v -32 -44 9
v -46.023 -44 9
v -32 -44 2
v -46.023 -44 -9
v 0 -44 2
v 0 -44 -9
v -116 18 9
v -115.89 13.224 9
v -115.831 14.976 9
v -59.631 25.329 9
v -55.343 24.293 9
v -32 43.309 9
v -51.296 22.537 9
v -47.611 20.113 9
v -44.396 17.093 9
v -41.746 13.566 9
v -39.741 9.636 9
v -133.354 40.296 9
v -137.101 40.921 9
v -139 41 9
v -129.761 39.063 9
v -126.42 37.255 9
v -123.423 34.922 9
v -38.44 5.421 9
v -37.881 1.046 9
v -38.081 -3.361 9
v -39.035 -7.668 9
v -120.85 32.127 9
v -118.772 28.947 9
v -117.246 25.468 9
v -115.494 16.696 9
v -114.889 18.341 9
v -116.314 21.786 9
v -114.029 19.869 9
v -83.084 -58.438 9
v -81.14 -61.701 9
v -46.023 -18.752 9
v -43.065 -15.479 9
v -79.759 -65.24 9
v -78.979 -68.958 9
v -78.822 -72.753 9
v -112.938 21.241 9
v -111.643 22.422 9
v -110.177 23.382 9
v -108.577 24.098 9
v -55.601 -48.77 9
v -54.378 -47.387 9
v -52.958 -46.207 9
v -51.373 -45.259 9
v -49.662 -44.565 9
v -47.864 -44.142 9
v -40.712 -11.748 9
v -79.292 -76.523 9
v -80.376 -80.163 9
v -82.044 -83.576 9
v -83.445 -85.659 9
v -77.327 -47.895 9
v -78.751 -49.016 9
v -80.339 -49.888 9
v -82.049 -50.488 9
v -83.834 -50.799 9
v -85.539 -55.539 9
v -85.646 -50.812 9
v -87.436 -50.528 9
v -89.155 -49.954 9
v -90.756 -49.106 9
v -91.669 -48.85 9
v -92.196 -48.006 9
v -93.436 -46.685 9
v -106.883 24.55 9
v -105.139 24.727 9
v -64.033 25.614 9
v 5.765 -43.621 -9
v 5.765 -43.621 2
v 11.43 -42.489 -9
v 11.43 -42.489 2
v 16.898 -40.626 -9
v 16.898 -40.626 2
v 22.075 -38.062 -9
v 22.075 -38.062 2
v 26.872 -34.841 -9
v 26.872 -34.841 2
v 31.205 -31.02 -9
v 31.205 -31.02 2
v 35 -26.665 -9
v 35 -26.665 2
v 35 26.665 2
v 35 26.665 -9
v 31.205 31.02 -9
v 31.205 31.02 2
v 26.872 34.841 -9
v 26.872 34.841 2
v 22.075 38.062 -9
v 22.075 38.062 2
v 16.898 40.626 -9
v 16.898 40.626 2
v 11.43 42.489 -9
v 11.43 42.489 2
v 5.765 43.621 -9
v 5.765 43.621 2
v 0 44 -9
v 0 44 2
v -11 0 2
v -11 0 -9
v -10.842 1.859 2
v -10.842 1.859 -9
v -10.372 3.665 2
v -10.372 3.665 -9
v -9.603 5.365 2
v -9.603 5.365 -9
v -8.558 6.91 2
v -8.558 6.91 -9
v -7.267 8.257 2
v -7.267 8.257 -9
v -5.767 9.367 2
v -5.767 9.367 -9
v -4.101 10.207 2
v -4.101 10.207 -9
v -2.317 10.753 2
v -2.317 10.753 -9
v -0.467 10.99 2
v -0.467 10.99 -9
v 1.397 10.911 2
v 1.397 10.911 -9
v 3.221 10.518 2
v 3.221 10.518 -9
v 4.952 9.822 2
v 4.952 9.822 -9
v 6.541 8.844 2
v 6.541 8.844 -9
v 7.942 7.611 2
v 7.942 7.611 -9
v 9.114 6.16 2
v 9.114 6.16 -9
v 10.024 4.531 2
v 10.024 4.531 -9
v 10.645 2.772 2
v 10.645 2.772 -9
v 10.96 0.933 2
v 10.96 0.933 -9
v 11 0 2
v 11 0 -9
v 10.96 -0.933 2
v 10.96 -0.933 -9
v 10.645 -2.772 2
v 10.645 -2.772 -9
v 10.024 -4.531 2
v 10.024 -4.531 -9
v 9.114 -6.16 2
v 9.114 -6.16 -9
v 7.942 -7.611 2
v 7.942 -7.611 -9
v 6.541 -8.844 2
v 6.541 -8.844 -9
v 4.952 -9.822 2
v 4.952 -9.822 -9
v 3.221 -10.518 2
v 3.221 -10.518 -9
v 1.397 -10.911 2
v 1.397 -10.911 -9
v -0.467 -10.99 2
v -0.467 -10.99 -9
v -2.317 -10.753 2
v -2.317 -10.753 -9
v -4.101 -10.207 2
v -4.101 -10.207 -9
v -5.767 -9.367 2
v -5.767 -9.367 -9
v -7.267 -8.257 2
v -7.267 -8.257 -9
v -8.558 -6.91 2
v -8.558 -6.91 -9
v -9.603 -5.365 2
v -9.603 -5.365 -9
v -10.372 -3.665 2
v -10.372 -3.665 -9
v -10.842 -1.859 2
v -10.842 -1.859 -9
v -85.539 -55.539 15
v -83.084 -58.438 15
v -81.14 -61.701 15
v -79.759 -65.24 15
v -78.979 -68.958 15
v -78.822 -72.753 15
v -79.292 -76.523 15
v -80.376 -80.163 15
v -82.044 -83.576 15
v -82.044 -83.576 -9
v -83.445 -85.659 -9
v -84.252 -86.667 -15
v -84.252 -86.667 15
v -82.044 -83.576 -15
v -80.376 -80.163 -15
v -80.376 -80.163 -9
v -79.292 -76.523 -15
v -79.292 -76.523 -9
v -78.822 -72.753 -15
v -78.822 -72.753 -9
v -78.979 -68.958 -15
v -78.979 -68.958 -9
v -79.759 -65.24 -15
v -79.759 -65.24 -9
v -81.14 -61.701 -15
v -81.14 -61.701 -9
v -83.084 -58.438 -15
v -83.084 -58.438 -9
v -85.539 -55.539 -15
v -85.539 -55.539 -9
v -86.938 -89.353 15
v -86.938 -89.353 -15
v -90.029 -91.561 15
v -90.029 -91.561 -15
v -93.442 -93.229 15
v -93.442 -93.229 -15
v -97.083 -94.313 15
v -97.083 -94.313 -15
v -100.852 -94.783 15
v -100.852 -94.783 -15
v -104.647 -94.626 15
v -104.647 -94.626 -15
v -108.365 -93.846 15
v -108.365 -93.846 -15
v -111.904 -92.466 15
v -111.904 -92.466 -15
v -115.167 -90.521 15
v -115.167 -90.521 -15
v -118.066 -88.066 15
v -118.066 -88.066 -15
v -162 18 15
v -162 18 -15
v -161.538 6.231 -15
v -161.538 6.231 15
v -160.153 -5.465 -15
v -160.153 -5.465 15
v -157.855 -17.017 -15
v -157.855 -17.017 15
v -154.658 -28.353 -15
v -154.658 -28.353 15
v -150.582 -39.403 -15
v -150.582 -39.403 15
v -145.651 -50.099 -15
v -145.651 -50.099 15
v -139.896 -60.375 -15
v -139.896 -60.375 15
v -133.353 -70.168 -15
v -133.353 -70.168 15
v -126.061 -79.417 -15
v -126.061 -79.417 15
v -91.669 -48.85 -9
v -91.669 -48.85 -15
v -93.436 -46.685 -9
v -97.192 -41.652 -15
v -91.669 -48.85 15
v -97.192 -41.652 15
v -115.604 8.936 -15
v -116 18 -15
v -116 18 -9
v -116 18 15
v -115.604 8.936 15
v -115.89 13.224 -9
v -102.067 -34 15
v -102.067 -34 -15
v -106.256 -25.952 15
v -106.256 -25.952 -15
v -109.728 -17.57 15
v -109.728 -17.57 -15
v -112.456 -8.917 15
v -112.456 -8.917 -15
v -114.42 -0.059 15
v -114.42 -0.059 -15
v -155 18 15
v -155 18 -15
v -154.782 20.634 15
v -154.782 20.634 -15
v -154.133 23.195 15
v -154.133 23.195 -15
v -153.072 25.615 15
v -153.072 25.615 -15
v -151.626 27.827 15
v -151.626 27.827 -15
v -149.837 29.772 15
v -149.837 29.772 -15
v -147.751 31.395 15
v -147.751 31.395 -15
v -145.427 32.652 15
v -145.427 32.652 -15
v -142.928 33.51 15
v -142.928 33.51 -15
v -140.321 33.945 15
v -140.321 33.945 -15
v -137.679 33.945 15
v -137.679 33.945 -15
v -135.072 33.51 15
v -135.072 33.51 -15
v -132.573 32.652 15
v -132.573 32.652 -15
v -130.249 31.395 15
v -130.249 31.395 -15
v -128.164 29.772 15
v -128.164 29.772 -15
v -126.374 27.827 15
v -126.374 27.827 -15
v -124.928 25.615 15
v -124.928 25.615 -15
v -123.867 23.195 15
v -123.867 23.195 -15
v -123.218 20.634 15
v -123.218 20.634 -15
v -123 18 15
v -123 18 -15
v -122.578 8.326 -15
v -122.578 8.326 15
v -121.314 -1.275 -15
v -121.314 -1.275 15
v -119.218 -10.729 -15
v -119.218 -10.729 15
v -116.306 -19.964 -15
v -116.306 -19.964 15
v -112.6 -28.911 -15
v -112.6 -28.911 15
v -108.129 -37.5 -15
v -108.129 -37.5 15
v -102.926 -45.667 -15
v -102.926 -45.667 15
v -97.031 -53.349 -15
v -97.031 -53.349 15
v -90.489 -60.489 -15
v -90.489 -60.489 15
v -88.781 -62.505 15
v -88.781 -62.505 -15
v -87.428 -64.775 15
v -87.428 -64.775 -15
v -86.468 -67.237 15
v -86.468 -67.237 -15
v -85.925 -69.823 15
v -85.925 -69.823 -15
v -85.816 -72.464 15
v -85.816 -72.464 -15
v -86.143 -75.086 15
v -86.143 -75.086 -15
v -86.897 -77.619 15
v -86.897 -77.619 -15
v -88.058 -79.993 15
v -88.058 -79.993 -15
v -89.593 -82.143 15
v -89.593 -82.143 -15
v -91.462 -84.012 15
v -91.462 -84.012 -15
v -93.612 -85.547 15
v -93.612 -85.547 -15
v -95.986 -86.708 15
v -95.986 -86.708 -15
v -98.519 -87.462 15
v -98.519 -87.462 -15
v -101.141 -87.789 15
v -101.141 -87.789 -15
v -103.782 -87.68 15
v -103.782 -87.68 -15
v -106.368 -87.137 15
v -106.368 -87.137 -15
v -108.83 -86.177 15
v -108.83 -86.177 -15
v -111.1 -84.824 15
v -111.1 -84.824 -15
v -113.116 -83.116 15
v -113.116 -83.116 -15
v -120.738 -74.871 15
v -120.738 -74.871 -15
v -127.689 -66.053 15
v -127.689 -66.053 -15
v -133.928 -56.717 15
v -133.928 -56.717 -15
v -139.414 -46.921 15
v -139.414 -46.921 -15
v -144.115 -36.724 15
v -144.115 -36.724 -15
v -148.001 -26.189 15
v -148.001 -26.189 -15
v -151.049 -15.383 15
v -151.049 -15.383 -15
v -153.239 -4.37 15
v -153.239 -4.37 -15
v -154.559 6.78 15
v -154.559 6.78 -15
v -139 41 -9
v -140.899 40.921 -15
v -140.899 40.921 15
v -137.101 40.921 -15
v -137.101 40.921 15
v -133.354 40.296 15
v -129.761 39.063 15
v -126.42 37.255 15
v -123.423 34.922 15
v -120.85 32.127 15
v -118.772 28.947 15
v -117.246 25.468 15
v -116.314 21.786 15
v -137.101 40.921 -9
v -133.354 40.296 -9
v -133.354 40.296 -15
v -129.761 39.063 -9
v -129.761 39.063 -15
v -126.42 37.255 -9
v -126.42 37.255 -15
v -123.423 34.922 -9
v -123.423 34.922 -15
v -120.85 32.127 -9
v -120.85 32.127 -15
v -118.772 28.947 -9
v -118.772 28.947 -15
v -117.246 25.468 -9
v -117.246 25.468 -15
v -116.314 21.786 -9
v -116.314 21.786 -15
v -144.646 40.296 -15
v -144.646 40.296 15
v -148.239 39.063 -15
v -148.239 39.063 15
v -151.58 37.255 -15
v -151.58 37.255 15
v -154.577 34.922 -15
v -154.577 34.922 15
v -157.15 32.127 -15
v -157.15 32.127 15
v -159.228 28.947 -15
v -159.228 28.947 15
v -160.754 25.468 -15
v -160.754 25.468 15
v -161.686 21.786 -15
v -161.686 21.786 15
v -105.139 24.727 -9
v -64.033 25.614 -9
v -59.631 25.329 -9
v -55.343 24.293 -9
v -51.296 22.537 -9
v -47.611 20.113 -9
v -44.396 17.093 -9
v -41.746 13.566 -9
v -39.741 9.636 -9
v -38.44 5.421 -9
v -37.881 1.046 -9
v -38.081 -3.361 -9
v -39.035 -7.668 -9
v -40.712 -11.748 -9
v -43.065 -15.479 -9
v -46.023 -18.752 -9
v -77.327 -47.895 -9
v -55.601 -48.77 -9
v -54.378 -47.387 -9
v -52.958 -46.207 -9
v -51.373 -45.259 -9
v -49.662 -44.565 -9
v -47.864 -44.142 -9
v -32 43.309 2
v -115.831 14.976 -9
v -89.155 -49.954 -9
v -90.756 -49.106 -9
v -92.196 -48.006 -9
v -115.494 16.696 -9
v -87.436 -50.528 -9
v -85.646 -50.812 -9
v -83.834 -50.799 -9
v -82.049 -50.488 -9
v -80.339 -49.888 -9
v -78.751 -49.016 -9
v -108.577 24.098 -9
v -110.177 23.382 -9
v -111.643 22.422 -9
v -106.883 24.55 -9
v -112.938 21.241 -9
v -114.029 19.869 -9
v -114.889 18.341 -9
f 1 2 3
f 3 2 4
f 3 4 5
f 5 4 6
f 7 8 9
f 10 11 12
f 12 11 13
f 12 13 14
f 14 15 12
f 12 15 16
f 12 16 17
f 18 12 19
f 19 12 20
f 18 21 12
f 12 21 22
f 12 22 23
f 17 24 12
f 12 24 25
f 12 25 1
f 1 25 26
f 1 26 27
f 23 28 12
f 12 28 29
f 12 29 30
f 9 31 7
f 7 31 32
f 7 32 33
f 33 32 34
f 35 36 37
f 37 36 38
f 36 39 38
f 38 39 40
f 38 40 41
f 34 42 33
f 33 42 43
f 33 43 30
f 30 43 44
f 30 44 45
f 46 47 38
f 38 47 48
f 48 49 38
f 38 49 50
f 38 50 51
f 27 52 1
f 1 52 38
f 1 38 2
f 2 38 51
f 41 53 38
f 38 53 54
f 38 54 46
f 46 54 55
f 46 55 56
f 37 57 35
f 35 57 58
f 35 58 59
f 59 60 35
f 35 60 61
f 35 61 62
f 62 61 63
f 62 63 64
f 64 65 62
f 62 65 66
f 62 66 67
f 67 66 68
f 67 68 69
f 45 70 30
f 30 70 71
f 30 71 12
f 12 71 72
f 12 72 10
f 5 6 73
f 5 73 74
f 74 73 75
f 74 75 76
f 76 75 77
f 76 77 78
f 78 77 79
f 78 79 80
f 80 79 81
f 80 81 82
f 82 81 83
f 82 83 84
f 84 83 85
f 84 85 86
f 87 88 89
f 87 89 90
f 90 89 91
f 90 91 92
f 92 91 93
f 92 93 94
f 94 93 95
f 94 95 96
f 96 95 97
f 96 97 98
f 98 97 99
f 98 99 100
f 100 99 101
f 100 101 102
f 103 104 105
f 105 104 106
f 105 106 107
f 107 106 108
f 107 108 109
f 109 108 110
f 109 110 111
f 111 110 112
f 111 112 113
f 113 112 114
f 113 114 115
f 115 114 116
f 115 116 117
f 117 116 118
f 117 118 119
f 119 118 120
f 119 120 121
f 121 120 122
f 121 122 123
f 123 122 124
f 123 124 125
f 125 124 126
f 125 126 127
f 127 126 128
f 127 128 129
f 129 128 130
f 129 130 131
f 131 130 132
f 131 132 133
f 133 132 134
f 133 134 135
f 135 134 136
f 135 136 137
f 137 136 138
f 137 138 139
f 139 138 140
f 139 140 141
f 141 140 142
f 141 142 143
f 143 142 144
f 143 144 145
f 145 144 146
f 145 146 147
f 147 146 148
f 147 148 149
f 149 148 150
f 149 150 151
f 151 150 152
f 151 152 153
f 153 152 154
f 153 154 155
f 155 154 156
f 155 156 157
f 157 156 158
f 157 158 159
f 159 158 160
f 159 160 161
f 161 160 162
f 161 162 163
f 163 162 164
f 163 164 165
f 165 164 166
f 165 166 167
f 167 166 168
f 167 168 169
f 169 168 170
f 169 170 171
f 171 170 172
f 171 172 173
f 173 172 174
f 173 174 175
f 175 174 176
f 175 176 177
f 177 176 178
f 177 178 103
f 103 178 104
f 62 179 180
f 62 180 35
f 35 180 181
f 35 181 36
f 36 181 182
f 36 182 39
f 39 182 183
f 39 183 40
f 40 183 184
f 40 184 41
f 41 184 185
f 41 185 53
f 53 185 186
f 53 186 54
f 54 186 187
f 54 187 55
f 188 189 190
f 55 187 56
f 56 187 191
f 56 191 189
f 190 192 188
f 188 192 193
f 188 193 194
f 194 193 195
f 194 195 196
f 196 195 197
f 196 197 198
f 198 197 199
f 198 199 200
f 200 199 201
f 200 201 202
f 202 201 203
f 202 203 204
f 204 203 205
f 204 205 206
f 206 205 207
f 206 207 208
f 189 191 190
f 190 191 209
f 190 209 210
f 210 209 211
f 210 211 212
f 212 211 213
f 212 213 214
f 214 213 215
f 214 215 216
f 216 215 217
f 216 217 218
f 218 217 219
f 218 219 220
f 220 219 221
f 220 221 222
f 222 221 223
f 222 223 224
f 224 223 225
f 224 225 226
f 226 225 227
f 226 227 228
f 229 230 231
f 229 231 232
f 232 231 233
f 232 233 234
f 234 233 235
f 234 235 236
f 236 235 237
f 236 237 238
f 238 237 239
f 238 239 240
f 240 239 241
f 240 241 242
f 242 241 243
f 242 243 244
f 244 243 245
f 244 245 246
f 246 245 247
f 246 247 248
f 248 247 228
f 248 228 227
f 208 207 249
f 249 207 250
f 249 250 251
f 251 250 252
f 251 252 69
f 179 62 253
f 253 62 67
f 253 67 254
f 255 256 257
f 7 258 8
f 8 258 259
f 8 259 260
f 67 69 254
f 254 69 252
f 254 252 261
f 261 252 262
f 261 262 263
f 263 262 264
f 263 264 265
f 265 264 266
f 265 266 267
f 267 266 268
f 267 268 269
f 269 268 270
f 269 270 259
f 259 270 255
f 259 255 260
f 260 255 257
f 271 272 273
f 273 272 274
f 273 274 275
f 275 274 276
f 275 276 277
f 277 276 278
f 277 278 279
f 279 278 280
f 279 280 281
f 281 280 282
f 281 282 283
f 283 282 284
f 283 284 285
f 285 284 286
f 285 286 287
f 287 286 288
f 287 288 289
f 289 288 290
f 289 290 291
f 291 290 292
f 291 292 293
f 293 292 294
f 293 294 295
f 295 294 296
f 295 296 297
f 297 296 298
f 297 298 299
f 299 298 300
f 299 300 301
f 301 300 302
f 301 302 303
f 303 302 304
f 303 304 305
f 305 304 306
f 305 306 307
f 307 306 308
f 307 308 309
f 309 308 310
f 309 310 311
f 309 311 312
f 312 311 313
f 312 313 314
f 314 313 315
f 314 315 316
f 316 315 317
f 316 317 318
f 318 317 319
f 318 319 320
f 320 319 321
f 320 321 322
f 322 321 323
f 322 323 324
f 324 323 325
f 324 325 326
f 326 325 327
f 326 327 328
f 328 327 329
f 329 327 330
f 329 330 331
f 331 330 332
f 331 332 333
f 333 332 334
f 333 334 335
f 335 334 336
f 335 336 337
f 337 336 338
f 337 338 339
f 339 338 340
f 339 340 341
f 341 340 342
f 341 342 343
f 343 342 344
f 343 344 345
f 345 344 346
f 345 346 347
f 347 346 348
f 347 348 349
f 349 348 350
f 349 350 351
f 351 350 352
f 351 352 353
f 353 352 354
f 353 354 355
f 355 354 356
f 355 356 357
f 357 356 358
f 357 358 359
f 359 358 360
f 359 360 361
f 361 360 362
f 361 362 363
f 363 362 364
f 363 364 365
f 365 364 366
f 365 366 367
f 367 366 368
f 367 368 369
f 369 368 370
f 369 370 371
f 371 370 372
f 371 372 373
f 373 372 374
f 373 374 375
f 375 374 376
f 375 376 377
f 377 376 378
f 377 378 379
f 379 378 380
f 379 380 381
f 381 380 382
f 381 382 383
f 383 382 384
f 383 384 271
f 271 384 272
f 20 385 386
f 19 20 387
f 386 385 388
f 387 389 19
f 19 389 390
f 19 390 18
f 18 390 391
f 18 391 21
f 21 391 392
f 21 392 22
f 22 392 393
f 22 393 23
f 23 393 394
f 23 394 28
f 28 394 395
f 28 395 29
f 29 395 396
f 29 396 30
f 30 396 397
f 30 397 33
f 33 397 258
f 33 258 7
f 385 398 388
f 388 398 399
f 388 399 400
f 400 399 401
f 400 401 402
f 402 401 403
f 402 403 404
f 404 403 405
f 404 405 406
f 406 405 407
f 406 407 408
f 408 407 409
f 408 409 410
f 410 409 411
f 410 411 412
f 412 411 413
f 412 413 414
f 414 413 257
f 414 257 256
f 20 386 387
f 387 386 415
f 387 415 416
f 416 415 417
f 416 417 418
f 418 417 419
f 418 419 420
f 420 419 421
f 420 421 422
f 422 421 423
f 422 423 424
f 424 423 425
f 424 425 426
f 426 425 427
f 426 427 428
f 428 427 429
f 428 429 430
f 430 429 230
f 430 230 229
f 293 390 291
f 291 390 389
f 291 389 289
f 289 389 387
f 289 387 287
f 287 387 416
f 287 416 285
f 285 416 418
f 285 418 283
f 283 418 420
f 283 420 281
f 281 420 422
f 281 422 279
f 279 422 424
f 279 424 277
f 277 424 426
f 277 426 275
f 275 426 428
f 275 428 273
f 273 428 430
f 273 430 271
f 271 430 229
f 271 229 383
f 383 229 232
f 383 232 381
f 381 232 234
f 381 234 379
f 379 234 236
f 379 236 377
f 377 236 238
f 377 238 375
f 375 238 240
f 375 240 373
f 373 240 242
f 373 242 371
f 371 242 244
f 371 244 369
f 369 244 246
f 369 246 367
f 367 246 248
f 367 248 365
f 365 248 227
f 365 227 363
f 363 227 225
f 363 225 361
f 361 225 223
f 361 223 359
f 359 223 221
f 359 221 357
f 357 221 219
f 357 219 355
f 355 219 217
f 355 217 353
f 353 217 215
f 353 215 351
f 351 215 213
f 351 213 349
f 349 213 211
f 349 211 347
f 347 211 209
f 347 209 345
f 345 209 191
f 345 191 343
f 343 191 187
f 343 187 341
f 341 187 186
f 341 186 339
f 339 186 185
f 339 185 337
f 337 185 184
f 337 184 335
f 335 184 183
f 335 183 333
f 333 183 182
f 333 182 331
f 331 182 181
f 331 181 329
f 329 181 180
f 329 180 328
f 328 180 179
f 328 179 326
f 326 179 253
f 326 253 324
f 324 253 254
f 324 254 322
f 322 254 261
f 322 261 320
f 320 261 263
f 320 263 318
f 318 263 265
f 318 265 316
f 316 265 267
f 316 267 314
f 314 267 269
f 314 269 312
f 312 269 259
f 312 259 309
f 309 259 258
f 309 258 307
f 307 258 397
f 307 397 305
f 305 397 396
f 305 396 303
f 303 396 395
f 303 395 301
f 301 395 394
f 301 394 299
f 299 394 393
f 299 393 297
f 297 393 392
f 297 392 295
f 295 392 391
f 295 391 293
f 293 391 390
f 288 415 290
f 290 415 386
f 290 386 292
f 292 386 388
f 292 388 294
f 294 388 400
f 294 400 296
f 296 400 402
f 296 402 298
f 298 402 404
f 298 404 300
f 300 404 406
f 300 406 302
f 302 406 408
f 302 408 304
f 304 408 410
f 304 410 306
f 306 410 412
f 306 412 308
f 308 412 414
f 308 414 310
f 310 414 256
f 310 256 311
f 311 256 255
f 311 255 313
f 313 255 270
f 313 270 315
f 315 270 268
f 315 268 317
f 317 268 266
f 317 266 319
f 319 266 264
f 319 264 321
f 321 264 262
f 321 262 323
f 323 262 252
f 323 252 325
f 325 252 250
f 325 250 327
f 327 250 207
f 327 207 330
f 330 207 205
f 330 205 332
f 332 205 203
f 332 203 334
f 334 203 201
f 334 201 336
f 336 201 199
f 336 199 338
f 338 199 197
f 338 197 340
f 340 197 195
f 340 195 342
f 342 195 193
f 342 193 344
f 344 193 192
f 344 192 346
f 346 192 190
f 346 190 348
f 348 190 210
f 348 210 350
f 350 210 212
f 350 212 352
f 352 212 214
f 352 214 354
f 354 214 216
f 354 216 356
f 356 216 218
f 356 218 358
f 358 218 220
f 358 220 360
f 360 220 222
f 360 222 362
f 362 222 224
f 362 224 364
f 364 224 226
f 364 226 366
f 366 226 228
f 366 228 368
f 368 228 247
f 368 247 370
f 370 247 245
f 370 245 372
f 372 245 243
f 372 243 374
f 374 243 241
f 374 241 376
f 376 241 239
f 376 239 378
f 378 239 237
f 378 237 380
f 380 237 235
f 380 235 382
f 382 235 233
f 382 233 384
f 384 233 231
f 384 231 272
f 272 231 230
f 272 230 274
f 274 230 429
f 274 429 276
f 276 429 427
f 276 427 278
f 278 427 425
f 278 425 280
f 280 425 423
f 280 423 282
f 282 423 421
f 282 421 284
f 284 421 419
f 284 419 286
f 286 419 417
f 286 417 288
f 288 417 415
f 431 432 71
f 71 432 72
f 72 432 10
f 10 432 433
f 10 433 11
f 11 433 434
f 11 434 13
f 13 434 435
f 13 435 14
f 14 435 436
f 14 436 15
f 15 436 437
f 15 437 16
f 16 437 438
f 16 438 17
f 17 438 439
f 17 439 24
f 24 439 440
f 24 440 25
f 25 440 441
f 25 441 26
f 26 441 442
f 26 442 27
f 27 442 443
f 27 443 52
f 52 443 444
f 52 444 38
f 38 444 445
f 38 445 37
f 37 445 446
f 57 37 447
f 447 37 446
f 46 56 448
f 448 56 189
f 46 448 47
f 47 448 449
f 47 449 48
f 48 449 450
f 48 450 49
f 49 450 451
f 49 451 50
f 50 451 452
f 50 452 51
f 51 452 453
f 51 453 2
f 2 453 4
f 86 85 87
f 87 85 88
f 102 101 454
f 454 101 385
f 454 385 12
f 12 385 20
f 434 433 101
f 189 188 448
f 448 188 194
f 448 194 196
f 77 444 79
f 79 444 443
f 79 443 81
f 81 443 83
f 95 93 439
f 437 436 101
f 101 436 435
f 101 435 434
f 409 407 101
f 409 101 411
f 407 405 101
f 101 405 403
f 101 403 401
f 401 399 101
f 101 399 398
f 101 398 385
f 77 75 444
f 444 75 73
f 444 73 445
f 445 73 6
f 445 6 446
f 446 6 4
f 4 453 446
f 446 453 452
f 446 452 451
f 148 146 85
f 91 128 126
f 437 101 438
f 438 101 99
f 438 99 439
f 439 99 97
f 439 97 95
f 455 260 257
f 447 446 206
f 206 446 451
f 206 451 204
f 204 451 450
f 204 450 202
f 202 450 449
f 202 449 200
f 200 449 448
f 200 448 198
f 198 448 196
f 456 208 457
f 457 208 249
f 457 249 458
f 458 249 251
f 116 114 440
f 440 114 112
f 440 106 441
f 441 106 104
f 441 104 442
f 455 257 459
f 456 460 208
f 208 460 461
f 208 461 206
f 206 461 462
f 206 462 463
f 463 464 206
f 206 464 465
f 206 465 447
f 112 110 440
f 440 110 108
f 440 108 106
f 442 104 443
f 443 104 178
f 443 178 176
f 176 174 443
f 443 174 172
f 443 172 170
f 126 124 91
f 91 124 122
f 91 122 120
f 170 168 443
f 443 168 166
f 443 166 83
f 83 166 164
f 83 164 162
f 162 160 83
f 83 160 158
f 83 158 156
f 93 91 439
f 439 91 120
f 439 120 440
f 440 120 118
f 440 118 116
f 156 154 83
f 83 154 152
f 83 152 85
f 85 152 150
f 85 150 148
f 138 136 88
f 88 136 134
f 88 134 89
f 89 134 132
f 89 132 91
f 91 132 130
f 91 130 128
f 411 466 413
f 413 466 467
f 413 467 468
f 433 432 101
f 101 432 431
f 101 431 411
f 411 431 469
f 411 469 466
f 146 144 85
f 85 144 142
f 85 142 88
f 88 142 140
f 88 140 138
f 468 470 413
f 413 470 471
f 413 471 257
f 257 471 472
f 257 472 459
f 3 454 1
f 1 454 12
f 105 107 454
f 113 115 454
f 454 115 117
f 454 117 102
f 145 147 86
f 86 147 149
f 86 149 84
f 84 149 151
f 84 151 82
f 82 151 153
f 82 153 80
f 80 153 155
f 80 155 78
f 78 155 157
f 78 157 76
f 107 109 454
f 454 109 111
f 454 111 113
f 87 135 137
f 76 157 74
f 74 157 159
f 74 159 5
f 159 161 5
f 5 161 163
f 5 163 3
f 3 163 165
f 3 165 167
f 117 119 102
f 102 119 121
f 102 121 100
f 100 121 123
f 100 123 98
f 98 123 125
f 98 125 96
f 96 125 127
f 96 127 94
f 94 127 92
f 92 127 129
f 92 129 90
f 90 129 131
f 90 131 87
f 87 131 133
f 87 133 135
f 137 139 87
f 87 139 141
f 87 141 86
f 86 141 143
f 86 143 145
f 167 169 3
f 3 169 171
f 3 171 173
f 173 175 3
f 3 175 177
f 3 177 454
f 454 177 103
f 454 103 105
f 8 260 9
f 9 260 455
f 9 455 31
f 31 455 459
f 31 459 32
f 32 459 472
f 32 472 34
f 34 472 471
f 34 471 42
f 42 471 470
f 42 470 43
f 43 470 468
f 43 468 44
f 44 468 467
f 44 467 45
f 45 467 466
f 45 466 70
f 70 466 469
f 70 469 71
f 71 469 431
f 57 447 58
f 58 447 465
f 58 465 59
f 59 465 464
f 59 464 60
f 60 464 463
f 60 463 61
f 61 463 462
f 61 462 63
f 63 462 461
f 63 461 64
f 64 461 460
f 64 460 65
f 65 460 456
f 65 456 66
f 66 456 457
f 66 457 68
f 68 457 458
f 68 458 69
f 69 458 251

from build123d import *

# Parameters (mm, degrees)
BOSS_EXTRUDE1_DEPTH = 15
SKETCH1_3_R         = 11
BOSS_EXTRUDE2_DEPTH = 9
CUT_EXTRUDE1_START  = 2
SKETCH1_5_R         = 11
CUT_EXTRUDE1_DEPTH  = 7
FILLET1_R           = 11


with BuildPart() as part:
    # Sketch1 → Boss-Extrude1 (new, symmetric)
    with BuildSketch(Plane.XY):
        with BuildLine():
            ThreePointArc((-162, 18), (-150.581929877, -39.402514855), (-118.066017178, -88.066017178))
            ThreePointArc((-118.066017178, -88.066017178), (-85.539105243, -88.066017178), (-85.539105243, -55.539105243))
            ThreePointArc((-85.539105243, -55.539105243), (-108.083471381, -21.799076966), (-116, 18))
            ThreePointArc((-116, 18), (-139, 41), (-162, 18))
        make_face()
        with BuildLine():
            ThreePointArc((-123, 18), (-139, 34), (-155, 18))
            ThreePointArc((-155, 18), (-144.114773149, -36.723730828), (-113.11626971, -83.11626971))
            ThreePointArc((-113.11626971, -83.11626971), (-90.488852712, -83.11626971), (-90.488852712, -60.488852712))
            ThreePointArc((-90.488852712, -60.488852712), (-114.550628109, -24.477860993), (-123, 18))
        make_face(mode=Mode.SUBTRACT)
    extrude(amount=BOSS_EXTRUDE1_DEPTH, both=True)

    # Sketch1<3> → Boss-Extrude2 (add, symmetric)
    with BuildSketch(Plane.XY):
        with BuildLine():
            ThreePointArc((0, -44), (19.528931575, -39.428680317), (35, -26.664583252))
            Line((35, -26.664583252), (35, 26.664583252))
            ThreePointArc((35, 26.664583252), (19.528931575, 39.428680317), (0, 44))
            Line((0, 44), (-139, 41))
            ThreePointArc((-139, 41), (-125.21351497, 36.410128476), (-116.929481683, 24.472420045))
            Line((-116.929481683, 24.472420045), (-64.032905328, 25.614072772))
            ThreePointArc((-64.032905328, 25.614072772), (-51.356216469, 22.569851157), (-41.818901123, 13.681356252))
            ThreePointArc((-41.818901123, 13.681356252), (-38.072611256, -3.293430459), (-46.023062445, -18.752033163))
            Line((-46.023062445, -18.752033163), (-85.539105243, -55.539105243))
            ThreePointArc((-85.539105243, -55.539105243), (-78.857942833, -70.207416226), (-83.445115781, -85.659119128))
            Line((-83.445115781, -85.659119128), (-55.600860061, -48.770491521))
            ThreePointArc((-55.600860061, -48.770491521), (-51.37310442, -45.258629004), (-46.023062445, -44))
            Line((-46.023062445, -44), (0, -44))
        make_face()
        Circle(SKETCH1_3_R, mode=Mode.SUBTRACT)
    extrude(amount=BOSS_EXTRUDE2_DEPTH, both=True)

    # Sketch1<5> → Cut-Extrude1 (cut)
    # profile 1 of 2: a face of its own
    with BuildSketch(Plane.XY.offset(CUT_EXTRUDE1_START)):
        with BuildLine():
            ThreePointArc((-32, 30.199337741), (-18.292282048, 40.017401433), (-1.898396275, 43.959027419))
            Line((-1.898396275, 43.959027419), (-32, 43.309352518))
            Line((-32, 43.309352518), (-32, 30.199337741))
        make_face()
    # profile 2 of 2: a face of its own
    with BuildSketch(Plane.XY.offset(CUT_EXTRUDE1_START)):
        with BuildLine():
            ThreePointArc((0, -44), (19.528931575, -39.428680317), (35, -26.664583252))
            Line((35, -26.664583252), (35, 26.664583252))
            ThreePointArc((35, 26.664583252), (19.528931575, 39.428680317), (0, 44))
            Line((0, 44), (-1.898396275, 43.959027419))
            ThreePointArc((-1.898396275, 43.959027419), (-18.292282048, 40.017401433), (-32, 30.199337741))
            Line((-32, 30.199337741), (-32, -44))
            Line((-32, -44), (0, -44))
        make_face()
        Circle(SKETCH1_5_R, mode=Mode.SUBTRACT)
    extrude(amount=CUT_EXTRUDE1_DEPTH, mode=Mode.SUBTRACT)

    # Fillet1
    # the kernel refuses this fillet: 11 mm, written as the material it adds along each edge
    with BuildSketch(Plane(origin=(-116.929481683, 24.472420045, -9), x_dir=(0.09199621830017597, -0.9957593563800776, 0), z_dir=(0, 0, 1))) as fillet1_piece_1:
        with BuildLine():
            CenterArc((11.803908742, 10.988267546), FILLET1_R, 175.957949098, 91.395536091)
            Line((0.831270302, 11.763642077), (-0.265993542, 11.841179531))
            Line((-0.265993542, 11.841179531), (-1.097263844, 0.077537453))
            Line((-1.097263844, 0.077537453), (0.211131542, -1.079547809))
            ThreePointArc((0.211131542, -1.079547809), (6.429285778, -0.765233377), (11.245203657, -1.098826755))
            Line((11.245203657, -1.098826755), (11.295995028, 0))
        make_face()
    extrude(amount=18)
    with BuildSketch(Plane(origin=(-85.539105243, -55.539105243, 9), x_dir=(-0.6656229330882777, 0.7462882224361834, 0), z_dir=(0, 0, -1))) as fillet1_piece_2:
        with BuildLine():
            CenterArc((11.236677702, 10.982091478), FILLET1_R, 178.778435739, 94.49143138)
            Line((0.239177665, 11.216597213), (0, 0))
            ThreePointArc((0, 0), (5.932053203, -0.16931694), (11.864106406, 0))
        make_face()
    extrude(amount=18)


solid = part.part
